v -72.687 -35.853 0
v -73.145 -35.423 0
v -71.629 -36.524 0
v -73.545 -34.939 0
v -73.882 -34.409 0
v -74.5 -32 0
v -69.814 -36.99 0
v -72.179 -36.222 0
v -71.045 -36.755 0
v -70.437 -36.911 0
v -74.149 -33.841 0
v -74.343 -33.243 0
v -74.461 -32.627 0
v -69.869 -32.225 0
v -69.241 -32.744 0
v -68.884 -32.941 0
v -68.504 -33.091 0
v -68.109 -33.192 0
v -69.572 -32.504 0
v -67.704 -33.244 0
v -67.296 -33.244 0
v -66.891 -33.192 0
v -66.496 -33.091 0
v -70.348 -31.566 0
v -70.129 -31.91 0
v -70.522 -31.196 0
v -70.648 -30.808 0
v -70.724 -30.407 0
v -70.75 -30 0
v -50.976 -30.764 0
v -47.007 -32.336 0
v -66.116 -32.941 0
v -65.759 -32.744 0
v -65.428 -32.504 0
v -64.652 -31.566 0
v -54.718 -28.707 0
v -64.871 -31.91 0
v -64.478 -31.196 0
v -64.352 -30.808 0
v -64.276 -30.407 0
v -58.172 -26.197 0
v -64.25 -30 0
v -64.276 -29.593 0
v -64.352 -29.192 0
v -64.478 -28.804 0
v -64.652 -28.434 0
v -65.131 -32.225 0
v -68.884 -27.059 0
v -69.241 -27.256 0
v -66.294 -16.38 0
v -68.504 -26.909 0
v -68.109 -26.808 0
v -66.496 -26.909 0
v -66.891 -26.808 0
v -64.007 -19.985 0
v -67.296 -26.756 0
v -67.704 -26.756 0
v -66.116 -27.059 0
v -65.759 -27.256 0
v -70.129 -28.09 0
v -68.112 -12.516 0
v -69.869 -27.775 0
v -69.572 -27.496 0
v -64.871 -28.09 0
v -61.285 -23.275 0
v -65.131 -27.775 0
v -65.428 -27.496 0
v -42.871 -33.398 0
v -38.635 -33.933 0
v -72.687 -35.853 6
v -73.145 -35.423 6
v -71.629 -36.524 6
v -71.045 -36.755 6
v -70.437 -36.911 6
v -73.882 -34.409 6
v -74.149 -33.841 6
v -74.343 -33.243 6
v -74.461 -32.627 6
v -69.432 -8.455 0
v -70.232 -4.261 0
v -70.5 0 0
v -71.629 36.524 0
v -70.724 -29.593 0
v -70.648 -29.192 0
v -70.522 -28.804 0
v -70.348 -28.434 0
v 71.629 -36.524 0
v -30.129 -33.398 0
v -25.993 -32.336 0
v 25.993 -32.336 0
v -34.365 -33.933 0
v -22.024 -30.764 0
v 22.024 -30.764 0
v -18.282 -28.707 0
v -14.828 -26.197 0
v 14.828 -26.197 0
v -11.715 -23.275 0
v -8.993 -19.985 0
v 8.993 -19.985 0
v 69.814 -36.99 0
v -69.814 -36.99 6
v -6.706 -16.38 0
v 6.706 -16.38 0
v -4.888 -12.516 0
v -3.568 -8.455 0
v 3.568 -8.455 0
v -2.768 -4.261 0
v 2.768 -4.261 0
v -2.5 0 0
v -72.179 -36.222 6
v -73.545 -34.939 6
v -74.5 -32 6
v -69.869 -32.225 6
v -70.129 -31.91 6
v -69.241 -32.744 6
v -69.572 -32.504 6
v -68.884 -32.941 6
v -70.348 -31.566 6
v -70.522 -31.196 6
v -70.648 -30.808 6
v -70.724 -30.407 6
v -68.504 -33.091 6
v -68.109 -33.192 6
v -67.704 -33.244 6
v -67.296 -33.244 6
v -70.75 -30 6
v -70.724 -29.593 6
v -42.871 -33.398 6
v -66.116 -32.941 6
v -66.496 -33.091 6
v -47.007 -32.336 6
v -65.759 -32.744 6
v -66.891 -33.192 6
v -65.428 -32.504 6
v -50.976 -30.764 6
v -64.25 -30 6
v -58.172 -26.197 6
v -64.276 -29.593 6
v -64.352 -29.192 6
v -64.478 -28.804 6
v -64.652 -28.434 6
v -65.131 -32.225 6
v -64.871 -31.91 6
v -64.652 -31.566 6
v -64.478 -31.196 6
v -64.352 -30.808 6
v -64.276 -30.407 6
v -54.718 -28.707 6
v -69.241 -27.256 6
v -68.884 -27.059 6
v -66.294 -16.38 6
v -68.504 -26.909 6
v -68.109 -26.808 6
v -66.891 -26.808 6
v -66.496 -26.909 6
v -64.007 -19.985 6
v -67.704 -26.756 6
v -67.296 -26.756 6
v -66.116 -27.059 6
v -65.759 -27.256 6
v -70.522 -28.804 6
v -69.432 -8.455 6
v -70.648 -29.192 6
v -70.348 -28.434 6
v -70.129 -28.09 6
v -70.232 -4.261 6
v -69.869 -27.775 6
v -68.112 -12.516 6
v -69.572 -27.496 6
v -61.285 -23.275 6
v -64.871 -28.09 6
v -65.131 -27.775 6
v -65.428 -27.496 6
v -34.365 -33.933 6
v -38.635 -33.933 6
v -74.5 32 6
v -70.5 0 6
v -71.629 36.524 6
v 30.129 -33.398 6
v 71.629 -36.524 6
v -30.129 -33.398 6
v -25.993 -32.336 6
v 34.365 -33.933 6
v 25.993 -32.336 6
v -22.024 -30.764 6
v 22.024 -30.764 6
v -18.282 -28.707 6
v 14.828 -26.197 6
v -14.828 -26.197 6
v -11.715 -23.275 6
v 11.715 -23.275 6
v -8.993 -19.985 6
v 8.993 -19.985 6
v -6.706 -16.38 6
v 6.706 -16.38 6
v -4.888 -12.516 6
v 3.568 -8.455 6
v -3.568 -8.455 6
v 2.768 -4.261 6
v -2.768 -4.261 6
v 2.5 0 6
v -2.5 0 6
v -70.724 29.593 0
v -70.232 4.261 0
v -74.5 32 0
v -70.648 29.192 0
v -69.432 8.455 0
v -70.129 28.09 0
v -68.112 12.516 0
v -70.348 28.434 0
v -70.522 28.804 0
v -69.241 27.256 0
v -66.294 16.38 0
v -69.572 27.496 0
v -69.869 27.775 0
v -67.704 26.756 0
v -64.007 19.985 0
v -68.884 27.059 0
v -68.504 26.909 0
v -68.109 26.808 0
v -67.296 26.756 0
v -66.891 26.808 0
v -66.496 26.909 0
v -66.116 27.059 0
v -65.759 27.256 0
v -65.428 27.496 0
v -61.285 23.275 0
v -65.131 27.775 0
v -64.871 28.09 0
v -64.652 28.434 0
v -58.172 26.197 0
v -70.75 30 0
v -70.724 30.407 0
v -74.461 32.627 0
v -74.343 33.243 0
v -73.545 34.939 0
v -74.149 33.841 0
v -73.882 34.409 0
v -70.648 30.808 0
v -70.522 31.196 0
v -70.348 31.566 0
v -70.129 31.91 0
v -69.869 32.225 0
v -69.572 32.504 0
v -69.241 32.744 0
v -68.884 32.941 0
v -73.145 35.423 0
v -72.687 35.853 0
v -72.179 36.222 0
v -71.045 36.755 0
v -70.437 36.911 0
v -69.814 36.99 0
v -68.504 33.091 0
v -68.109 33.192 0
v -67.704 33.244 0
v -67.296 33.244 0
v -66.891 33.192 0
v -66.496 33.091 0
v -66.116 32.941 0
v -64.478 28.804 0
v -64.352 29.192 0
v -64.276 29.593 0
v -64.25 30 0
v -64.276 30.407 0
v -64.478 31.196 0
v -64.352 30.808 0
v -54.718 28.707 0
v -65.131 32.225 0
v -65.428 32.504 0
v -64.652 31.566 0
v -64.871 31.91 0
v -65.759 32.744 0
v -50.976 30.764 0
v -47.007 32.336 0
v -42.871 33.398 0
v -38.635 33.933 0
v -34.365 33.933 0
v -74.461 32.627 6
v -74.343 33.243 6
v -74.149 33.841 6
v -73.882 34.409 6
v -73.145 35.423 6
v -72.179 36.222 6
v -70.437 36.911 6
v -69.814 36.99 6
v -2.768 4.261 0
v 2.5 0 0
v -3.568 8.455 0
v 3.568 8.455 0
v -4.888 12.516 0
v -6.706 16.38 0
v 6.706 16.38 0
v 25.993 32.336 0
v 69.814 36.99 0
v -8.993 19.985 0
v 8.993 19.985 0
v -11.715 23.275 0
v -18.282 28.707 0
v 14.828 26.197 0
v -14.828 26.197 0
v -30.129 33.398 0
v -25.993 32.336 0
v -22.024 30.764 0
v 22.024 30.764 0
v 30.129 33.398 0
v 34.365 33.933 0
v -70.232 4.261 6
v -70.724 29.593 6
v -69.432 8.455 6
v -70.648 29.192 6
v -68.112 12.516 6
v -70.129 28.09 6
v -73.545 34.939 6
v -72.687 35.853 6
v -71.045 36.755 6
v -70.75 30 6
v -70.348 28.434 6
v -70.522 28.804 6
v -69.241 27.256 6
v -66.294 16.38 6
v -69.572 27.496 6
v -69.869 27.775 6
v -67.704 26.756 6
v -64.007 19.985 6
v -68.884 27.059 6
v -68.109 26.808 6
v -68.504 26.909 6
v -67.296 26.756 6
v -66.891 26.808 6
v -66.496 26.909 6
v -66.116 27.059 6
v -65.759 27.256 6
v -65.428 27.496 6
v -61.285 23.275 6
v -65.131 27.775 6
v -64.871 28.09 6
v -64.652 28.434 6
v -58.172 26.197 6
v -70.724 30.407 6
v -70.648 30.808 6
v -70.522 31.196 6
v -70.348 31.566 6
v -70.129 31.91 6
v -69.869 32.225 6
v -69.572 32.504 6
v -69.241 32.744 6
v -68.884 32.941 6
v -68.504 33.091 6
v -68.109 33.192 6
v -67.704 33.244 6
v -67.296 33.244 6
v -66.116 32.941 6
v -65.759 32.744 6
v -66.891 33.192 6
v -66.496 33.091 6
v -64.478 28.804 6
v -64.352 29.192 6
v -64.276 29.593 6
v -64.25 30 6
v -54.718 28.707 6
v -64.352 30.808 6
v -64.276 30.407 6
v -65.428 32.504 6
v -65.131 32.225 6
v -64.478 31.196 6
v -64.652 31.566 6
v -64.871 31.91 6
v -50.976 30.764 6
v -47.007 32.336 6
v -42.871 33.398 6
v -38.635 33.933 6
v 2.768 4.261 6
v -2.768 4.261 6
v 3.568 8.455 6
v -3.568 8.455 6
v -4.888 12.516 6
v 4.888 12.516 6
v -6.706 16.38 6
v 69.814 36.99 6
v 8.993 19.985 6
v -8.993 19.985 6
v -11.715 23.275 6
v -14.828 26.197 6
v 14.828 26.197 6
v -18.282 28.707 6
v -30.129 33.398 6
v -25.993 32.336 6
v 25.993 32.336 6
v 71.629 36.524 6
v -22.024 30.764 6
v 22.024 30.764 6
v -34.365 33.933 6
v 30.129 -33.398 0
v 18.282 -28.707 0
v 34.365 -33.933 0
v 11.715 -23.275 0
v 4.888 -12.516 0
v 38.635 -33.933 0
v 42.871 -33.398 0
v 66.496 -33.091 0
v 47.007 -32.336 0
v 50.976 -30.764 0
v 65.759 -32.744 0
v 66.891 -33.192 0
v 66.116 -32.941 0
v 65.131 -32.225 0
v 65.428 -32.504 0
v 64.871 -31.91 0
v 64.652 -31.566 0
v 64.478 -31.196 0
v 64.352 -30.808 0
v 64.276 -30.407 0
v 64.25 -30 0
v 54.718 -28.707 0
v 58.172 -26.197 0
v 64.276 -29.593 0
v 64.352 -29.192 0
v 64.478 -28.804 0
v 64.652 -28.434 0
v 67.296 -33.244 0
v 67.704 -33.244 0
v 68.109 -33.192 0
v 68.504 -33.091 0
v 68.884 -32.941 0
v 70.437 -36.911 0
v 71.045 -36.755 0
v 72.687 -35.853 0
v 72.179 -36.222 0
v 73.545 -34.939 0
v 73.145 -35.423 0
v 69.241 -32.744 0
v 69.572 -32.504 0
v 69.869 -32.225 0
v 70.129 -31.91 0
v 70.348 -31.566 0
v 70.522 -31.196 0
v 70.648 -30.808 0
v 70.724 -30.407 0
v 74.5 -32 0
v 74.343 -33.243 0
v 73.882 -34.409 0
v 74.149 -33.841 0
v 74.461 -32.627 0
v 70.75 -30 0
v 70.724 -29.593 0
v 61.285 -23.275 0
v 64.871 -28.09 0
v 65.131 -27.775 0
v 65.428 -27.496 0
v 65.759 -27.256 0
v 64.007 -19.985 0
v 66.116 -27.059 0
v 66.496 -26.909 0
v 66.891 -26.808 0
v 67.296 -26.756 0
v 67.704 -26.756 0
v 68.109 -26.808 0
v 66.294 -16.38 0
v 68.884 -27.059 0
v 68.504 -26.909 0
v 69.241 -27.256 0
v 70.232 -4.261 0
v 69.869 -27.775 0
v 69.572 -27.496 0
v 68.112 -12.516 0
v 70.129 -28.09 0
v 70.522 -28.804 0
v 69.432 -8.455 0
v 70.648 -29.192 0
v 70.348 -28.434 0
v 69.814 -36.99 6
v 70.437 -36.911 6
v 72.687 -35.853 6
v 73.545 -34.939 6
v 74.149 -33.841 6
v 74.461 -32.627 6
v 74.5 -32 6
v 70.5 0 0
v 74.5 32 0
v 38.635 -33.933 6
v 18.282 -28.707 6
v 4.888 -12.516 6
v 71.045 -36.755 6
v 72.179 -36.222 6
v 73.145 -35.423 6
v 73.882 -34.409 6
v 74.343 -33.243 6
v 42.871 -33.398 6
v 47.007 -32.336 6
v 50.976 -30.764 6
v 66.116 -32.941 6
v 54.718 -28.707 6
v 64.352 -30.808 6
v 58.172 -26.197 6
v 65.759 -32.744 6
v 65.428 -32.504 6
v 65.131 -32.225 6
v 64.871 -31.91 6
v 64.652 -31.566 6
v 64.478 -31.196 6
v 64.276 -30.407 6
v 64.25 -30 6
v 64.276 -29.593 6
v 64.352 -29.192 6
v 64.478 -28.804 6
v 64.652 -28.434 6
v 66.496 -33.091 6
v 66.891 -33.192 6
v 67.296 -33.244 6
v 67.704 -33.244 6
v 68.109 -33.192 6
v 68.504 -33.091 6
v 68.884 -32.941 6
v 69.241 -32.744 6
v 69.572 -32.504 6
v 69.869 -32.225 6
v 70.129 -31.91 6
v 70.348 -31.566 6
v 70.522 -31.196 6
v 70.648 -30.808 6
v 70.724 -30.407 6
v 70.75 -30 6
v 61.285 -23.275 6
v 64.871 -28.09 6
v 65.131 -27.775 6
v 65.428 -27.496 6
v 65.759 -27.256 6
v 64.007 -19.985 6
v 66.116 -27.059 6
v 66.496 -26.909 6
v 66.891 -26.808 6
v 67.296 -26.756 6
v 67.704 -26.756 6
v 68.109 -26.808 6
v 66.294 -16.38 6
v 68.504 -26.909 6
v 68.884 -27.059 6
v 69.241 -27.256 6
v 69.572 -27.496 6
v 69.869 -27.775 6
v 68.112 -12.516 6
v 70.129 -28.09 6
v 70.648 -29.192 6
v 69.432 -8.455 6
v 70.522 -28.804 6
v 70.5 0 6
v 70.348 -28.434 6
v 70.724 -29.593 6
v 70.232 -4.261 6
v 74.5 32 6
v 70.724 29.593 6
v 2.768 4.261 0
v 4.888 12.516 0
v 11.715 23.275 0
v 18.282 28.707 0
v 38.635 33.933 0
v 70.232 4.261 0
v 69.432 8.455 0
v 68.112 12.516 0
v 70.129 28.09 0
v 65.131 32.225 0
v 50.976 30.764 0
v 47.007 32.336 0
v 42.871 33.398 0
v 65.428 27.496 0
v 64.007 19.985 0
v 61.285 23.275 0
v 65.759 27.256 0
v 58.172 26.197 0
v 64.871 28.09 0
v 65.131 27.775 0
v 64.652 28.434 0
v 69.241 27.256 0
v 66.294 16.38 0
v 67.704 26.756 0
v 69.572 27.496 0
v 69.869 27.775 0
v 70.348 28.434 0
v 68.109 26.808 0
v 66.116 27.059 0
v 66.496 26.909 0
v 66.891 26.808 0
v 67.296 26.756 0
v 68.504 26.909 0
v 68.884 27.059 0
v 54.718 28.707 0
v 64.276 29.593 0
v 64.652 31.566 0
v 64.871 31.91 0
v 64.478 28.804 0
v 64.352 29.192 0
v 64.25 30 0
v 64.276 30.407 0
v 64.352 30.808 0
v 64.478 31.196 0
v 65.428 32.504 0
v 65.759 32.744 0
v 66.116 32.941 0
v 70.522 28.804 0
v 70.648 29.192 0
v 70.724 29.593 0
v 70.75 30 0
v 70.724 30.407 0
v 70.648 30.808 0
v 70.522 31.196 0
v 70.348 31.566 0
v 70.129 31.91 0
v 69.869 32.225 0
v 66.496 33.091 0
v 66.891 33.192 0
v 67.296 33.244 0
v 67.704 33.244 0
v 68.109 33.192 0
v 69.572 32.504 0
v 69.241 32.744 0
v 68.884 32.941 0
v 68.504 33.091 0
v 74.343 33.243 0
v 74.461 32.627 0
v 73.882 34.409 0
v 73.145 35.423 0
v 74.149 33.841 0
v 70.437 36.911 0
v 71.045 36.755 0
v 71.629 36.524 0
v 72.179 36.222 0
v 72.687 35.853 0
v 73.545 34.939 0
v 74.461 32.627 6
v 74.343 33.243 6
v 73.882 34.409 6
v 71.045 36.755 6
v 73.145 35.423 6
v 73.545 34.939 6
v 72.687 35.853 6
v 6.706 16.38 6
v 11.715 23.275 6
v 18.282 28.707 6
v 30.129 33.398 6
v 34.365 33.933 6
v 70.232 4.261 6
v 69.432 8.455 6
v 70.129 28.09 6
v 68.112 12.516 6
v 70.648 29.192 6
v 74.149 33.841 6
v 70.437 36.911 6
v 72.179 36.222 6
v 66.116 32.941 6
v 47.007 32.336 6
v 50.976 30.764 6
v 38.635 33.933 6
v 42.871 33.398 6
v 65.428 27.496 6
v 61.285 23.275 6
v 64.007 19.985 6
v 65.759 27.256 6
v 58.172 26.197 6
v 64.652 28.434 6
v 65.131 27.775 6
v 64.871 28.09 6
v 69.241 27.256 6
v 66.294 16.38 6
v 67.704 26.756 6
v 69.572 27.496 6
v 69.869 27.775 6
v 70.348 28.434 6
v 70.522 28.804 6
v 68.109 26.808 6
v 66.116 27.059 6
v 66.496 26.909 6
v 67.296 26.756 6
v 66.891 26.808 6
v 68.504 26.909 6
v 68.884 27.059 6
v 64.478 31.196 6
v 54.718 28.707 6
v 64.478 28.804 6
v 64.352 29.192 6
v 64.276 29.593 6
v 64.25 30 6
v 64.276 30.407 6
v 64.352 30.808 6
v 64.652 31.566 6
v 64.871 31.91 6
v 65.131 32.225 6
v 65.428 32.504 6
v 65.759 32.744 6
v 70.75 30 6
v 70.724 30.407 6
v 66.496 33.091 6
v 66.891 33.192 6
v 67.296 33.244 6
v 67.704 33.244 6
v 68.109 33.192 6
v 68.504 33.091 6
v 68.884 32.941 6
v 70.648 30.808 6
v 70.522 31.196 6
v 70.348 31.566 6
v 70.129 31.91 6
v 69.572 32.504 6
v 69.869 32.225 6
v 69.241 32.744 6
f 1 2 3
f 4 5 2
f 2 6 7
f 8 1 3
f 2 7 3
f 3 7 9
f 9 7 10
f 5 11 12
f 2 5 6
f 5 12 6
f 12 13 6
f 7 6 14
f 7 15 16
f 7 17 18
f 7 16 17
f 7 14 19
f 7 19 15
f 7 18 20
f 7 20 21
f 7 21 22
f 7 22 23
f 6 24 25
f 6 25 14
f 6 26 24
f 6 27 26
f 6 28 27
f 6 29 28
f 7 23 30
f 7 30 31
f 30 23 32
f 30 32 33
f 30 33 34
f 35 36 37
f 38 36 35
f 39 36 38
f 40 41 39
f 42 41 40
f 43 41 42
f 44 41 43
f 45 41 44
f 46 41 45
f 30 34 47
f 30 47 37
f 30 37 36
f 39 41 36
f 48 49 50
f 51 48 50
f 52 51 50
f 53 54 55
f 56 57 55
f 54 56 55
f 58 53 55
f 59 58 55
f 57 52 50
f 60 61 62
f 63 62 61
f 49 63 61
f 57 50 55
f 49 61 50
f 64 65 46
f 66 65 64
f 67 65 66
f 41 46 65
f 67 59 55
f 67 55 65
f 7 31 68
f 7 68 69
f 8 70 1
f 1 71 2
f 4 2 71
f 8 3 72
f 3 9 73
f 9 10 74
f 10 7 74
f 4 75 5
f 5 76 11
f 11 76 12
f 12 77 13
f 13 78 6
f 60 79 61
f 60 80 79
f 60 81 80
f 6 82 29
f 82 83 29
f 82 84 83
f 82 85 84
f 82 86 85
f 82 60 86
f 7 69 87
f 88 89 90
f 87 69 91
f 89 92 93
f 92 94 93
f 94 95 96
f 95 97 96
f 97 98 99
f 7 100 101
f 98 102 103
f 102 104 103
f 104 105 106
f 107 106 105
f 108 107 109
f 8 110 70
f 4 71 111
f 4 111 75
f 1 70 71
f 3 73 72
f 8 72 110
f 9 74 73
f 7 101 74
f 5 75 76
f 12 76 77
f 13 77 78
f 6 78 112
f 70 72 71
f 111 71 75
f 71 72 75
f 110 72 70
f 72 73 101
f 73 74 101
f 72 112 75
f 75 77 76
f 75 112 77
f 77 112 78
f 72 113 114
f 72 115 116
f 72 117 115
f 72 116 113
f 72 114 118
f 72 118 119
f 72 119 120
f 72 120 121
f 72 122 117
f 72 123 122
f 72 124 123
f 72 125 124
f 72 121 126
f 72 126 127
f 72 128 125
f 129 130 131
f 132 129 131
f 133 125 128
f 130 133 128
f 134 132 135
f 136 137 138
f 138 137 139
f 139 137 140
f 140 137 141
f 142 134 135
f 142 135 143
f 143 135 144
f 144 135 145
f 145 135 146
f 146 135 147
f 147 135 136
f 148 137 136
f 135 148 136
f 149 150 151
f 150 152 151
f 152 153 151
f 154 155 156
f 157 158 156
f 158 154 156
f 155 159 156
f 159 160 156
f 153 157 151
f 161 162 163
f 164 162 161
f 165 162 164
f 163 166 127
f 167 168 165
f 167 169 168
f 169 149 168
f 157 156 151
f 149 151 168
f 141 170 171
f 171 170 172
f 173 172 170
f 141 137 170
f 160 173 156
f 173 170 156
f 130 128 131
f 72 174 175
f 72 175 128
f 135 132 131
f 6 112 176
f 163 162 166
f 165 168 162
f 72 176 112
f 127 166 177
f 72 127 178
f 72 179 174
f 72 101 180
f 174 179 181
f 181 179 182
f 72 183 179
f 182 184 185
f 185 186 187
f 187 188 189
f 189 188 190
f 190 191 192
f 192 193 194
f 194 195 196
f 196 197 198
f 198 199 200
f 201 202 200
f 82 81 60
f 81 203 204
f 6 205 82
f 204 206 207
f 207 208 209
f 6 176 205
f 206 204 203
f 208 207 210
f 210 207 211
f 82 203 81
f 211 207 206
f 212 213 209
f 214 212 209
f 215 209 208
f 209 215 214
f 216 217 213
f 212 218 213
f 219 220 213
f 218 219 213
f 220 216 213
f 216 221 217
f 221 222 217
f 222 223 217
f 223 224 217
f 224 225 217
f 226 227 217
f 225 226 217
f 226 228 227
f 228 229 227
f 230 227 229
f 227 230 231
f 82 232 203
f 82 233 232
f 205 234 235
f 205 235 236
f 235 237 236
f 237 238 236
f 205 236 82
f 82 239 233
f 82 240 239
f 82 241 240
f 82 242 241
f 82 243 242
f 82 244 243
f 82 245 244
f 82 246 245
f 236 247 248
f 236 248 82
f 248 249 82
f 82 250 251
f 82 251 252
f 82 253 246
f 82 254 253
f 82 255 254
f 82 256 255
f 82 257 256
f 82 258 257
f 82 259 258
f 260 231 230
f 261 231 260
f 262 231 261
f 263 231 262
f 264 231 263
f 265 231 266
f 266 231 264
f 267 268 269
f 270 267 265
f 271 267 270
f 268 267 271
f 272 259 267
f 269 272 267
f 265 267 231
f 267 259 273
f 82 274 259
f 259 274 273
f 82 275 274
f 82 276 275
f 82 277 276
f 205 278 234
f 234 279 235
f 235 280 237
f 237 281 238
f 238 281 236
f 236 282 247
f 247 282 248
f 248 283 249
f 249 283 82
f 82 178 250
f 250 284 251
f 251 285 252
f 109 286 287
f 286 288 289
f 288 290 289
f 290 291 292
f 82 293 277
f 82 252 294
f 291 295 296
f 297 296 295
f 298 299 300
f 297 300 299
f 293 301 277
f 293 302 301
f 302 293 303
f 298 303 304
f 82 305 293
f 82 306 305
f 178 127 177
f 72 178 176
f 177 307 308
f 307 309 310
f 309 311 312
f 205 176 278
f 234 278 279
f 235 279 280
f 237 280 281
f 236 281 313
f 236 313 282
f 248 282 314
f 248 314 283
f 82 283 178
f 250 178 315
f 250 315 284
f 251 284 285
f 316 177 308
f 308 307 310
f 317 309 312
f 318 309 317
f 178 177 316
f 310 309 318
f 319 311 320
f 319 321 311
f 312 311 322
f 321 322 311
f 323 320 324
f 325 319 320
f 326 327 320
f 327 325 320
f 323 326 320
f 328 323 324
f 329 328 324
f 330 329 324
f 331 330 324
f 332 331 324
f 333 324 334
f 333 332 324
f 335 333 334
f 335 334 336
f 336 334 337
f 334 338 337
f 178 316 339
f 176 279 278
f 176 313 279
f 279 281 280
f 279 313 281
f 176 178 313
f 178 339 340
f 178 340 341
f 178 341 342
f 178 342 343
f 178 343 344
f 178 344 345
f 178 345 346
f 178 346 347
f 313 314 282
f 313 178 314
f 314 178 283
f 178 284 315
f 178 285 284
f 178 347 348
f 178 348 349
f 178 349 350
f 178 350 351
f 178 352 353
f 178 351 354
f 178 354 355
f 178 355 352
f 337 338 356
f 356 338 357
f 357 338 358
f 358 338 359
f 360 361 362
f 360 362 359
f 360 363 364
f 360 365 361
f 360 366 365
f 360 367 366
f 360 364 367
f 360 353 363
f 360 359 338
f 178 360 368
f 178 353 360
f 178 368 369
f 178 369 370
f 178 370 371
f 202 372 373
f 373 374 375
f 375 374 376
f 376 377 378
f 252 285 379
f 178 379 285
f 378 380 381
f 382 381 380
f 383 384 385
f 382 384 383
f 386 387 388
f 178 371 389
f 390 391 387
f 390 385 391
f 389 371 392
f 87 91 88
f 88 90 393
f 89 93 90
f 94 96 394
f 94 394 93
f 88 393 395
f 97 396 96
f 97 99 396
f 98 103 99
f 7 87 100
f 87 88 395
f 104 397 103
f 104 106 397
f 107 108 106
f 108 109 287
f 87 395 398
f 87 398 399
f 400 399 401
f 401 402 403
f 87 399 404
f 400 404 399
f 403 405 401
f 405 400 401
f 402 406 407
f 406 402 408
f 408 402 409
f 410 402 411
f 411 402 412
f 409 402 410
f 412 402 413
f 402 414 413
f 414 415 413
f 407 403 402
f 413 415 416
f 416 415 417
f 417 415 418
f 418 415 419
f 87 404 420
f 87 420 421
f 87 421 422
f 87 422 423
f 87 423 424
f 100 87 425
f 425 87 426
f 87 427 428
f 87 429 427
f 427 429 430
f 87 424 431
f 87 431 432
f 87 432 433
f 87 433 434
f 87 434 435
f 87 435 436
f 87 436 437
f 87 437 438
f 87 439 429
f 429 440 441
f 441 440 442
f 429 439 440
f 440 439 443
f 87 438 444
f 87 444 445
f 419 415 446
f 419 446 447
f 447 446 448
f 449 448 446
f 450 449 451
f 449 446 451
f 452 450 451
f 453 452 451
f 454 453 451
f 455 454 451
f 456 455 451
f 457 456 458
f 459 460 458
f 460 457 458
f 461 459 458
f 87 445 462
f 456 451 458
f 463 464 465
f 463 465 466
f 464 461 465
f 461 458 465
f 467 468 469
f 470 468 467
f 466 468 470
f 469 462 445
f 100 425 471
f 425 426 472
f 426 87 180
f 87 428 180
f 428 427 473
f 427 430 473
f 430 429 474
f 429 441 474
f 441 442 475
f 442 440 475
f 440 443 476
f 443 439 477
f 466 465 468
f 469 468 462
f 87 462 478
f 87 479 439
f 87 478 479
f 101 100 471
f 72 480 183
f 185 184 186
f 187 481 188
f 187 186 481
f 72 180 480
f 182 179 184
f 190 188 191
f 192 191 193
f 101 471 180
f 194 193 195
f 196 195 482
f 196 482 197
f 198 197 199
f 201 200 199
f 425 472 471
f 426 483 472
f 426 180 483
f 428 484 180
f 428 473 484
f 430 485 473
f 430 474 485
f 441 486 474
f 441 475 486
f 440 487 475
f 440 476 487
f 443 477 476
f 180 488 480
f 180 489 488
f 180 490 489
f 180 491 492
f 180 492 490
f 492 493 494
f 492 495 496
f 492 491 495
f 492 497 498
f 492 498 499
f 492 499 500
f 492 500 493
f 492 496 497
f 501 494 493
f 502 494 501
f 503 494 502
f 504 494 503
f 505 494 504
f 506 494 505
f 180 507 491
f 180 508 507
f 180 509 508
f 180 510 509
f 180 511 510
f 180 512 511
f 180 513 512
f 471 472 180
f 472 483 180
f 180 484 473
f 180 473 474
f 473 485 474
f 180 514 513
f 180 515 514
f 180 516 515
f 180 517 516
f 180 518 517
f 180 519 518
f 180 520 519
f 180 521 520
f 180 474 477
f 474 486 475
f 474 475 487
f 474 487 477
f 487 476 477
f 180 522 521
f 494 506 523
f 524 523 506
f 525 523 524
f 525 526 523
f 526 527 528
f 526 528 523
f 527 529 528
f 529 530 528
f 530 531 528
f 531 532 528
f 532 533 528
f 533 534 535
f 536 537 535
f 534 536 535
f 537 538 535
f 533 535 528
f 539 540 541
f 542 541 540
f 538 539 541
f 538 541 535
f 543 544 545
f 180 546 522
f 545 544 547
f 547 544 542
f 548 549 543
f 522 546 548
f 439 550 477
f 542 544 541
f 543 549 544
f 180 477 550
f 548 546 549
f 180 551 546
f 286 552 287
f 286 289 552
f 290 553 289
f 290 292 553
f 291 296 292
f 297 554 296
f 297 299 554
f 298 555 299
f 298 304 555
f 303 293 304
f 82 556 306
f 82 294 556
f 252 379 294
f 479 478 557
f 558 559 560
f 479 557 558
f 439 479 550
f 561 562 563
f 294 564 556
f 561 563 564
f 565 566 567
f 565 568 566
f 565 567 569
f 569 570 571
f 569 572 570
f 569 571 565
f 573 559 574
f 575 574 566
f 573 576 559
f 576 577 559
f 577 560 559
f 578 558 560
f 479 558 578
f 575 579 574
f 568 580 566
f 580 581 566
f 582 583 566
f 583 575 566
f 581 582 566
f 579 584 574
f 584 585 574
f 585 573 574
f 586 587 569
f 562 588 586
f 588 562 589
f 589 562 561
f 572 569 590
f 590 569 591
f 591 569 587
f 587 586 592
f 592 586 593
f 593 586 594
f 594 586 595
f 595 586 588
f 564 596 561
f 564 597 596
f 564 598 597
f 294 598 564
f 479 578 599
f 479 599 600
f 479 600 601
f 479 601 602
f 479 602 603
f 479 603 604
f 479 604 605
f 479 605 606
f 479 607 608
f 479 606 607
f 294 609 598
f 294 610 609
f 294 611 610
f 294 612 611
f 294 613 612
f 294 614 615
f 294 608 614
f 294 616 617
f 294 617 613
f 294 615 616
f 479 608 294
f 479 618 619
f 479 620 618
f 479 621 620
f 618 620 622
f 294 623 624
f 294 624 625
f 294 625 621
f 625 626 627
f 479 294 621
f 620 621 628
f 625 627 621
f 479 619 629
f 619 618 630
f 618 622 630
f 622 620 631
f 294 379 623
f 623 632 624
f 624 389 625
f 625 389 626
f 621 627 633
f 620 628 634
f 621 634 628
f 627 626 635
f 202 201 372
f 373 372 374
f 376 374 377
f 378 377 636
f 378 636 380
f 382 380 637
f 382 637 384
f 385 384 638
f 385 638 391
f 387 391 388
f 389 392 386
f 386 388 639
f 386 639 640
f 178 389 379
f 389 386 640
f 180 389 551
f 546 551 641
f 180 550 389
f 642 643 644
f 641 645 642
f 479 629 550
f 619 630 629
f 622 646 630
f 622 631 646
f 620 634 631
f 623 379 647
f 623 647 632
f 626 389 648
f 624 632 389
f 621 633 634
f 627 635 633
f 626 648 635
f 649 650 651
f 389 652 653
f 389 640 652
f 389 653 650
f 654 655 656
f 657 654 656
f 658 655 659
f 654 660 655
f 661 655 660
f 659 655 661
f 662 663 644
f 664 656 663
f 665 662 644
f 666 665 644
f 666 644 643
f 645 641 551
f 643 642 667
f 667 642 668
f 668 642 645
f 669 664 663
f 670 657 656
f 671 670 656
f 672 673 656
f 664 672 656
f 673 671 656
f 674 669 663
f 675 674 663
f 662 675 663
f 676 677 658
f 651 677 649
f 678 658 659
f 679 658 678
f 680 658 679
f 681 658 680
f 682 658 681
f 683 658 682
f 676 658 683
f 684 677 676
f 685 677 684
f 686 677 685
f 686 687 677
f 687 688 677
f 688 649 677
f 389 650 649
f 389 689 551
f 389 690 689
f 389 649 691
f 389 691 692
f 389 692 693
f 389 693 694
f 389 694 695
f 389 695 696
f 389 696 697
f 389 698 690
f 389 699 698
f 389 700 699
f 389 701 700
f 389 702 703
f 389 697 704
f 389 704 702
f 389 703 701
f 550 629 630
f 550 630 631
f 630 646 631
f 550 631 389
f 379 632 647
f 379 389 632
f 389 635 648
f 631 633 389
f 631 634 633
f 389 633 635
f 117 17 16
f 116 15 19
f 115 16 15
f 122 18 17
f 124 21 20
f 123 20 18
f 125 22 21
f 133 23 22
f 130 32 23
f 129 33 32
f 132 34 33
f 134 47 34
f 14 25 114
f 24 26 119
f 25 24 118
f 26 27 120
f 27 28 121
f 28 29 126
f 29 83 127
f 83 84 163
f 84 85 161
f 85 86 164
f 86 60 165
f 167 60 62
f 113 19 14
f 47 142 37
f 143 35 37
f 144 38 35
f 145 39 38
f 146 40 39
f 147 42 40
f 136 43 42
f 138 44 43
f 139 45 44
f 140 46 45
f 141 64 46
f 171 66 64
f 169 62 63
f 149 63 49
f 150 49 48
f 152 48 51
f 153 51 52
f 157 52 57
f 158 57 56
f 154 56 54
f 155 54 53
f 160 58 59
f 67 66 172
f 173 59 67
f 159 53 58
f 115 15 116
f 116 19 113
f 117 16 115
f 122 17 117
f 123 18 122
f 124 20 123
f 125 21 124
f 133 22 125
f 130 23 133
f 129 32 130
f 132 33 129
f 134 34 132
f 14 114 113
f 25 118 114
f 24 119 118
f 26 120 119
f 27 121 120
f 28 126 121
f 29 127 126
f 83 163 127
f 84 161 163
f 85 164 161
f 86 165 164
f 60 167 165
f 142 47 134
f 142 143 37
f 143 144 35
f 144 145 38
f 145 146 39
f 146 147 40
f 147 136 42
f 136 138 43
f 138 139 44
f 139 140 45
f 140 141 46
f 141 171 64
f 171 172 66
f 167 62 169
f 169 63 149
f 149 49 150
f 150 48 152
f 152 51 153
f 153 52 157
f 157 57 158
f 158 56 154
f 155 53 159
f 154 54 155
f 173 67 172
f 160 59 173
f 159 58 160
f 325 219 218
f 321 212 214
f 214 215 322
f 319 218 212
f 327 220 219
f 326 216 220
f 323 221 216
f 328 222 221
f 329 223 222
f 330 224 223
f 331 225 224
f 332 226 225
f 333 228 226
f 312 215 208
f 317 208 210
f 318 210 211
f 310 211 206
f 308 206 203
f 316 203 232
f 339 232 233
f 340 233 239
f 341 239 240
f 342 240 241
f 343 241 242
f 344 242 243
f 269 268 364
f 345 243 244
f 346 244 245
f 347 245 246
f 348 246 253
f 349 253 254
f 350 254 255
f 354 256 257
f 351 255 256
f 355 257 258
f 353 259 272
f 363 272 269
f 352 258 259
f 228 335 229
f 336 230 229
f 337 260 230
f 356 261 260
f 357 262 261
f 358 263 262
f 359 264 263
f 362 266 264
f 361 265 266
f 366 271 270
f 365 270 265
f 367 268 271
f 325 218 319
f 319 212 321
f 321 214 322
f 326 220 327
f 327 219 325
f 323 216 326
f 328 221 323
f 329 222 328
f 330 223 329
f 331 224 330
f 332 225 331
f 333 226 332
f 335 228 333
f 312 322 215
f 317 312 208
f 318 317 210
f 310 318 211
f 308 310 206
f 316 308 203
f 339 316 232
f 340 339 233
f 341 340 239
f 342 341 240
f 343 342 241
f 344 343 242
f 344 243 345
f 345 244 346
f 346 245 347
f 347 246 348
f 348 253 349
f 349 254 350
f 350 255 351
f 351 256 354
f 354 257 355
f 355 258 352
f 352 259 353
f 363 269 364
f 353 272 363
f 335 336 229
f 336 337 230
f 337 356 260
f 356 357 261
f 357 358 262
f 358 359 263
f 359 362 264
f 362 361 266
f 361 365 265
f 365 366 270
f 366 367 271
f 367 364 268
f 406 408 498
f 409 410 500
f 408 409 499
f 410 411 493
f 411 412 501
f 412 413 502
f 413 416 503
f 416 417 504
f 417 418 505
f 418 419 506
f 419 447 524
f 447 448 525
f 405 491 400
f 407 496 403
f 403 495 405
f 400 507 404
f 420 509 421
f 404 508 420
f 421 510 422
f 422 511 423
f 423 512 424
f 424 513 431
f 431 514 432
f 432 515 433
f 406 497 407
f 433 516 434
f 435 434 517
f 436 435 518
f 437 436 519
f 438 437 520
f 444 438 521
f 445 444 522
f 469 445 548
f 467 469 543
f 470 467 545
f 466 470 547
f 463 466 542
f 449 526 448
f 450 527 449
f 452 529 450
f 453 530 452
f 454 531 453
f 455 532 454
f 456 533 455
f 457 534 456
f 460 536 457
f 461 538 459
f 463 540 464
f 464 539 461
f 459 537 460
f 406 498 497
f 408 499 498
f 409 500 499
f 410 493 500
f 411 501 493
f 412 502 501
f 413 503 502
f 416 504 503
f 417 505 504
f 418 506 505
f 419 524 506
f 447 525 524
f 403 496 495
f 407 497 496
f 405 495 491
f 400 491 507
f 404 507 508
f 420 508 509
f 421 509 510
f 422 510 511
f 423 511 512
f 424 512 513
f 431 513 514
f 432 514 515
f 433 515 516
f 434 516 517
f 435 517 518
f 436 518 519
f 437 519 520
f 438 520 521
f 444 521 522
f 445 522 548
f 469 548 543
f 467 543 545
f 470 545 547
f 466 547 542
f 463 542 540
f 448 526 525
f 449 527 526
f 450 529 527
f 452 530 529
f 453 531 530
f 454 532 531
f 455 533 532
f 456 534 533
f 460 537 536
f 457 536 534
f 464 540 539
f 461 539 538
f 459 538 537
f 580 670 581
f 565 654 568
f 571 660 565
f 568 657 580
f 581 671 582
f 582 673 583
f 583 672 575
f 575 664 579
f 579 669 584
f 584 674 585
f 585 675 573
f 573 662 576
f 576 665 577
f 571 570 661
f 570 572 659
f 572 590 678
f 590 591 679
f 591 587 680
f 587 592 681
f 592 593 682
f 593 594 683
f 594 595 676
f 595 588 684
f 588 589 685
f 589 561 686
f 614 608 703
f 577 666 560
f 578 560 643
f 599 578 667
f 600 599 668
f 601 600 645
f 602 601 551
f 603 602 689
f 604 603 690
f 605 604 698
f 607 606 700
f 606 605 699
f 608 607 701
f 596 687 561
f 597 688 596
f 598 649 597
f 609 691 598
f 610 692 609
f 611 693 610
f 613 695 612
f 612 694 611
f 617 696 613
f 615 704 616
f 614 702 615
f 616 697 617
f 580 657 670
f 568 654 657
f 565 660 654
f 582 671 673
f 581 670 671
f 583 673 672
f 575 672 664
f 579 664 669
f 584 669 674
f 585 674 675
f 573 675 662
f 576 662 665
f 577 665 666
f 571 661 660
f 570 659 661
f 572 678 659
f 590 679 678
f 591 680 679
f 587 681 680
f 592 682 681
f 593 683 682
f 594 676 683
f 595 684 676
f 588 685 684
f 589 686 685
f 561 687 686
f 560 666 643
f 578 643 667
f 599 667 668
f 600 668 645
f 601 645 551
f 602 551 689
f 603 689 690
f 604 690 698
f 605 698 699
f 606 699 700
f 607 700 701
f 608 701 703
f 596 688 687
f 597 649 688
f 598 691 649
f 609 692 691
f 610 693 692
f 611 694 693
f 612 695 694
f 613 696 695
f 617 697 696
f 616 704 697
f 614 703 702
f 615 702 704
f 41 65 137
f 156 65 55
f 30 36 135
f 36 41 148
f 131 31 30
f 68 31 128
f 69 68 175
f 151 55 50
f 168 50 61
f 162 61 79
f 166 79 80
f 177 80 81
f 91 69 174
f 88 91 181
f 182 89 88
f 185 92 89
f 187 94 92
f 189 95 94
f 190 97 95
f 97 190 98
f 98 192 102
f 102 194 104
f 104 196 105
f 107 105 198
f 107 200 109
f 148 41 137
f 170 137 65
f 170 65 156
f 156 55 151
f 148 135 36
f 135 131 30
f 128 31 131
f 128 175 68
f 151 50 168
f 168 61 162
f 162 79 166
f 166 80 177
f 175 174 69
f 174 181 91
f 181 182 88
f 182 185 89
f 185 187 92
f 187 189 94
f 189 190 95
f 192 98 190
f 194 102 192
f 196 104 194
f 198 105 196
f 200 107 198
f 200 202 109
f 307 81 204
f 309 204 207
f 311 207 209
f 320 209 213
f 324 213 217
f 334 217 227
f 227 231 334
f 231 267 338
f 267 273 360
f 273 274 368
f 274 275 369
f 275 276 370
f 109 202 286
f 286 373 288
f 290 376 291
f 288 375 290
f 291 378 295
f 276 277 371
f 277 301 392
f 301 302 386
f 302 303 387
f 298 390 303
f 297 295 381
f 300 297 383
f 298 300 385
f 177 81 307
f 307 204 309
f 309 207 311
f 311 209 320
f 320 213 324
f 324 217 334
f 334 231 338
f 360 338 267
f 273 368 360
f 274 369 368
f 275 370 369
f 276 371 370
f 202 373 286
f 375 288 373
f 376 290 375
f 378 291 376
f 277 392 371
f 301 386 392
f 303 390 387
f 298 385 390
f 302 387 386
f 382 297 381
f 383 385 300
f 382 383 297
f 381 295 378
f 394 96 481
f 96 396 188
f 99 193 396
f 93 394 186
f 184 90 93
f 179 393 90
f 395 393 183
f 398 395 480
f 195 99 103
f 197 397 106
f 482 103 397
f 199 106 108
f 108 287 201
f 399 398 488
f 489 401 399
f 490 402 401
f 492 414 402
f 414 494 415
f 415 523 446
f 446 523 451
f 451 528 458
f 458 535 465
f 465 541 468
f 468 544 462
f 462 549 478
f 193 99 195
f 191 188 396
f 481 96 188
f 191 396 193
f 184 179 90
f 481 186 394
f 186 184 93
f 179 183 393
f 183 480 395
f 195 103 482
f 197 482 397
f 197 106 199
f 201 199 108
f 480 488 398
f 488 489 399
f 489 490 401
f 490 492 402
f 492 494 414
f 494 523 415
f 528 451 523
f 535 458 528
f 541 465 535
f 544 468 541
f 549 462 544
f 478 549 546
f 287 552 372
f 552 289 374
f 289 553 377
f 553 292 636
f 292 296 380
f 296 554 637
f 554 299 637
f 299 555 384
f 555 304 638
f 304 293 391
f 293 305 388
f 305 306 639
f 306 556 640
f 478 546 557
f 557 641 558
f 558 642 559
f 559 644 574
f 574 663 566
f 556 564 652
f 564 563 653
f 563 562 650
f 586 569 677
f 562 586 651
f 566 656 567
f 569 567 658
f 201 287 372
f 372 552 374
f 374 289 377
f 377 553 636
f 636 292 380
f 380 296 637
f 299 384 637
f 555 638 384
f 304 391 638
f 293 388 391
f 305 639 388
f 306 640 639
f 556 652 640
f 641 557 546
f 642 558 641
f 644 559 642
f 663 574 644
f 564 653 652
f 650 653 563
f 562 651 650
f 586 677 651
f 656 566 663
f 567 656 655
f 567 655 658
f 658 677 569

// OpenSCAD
$fn = 50;

difference() {
	union() {
		hull() {
			translate(v = [-69.5, 32.0, 0]) {
				cylinder(h = 6, r = 5);
			}
			translate(v = [69.5, 32.0, 0]) {
				cylinder(h = 6, r = 5);
			}
			translate(v = [-69.5, -32.0, 0]) {
				cylinder(h = 6, r = 5);
			}
			translate(v = [69.5, -32.0, 0]) {
				cylinder(h = 6, r = 5);
			}
		}
	}
	union() {
		translate(v = [-67.5, -30.0, -100.0]) {
			cylinder(h = 200, r = 3.25);
		}
		translate(v = [-67.5, 30.0, -100.0]) {
			cylinder(h = 200, r = 3.25);
		}
		translate(v = [67.5, -30.0, -100.0]) {
			cylinder(h = 200, r = 3.25);
		}
		translate(v = [67.5, 30.0, -100.0]) {
			cylinder(h = 200, r = 3.25);
		}
		translate(v = [-67.5, -30.0, -100.0]) {
			cylinder(h = 200, r = 1.8);
		}
		translate(v = [-67.5, 30.0, -100.0]) {
			cylinder(h = 200, r = 1.8);
		}
		translate(v = [67.5, -30.0, -100.0]) {
			cylinder(h = 200, r = 1.8);
		}
		translate(v = [67.5, 30.0, -100.0]) {
			cylinder(h = 200, r = 1.8);
		}
		translate(v = [-36.5, 0, 0.0]) {
			cylinder(h = 6, r = 34.0);
		}
		translate(v = [36.5, 0, 0.0]) {
			cylinder(h = 6, r = 34.0);
		}
	}
}
